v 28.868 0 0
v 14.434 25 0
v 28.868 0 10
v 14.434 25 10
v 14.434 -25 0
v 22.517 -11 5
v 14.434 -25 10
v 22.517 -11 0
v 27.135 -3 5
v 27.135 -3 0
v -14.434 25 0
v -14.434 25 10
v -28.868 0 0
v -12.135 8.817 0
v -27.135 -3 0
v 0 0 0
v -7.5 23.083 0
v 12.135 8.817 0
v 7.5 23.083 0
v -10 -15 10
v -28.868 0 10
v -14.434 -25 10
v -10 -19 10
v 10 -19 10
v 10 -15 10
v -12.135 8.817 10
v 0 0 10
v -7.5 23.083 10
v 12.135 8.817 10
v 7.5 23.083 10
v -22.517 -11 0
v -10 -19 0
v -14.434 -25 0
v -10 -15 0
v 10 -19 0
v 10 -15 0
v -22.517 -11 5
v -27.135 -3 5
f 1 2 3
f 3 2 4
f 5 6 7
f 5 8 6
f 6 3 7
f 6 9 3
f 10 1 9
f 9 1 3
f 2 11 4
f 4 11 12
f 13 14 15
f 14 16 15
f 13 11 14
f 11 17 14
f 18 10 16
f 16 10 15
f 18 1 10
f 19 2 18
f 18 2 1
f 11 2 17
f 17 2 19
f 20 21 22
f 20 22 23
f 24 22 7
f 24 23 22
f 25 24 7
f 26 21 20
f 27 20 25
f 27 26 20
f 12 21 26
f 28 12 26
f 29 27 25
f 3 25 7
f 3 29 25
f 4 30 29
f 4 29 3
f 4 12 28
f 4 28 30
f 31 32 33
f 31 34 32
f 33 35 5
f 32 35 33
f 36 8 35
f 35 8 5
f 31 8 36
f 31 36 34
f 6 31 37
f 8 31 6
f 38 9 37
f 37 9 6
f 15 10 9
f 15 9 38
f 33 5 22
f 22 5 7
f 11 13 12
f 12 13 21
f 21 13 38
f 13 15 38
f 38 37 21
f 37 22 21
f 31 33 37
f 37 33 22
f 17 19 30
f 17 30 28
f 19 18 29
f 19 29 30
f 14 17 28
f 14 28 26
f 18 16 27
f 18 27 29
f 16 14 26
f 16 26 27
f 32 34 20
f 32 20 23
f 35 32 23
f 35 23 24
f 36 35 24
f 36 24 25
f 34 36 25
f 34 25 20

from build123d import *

# Parameters (mm, degrees)
SKETCH001_W           = 80
SKETCH001_H           = 8
EXTRUDE001_DEPTH      = 5
EXTRUDE001_DEPTH_BACK = 1
SKETCH_W              = 20
SKETCH_H              = 4
EXTRUDE_DEPTH         = 10


with BuildPart() as extrude001:
    # Sketch001 → Extrude001 (new body, two sides)
    with BuildSketch(Plane.XY) as extrude001_sk:
        with Locations((0, -7)):
            Rectangle(SKETCH001_W, SKETCH001_H)
    extrude(amount=EXTRUDE001_DEPTH)
    extrude(extrude001_sk.sketch, amount=-EXTRUDE001_DEPTH_BACK)


with BuildPart() as cut:
    # Sketch → Extrude (new body)
    with BuildSketch(Plane.XY):
        Polygon((28.867513, 0), (14.433757, 25), (-14.433757, 25), (-28.867513, 0), (-14.433757, -25), (14.433757, -25), align=None)
        Polygon((7.5, 23.082627), (-7.5, 23.082627), (-12.135255, 8.816779), (0, 0), (12.135255, 8.816779), align=None, mode=Mode.SUBTRACT)
        with Locations((0, -17)):
            Rectangle(SKETCH_W, SKETCH_H, mode=Mode.SUBTRACT)
    extrude(amount=EXTRUDE_DEPTH)

    # Cut: cut Extrude001
    add(extrude001.part, mode=Mode.SUBTRACT)


solid = cut.part
